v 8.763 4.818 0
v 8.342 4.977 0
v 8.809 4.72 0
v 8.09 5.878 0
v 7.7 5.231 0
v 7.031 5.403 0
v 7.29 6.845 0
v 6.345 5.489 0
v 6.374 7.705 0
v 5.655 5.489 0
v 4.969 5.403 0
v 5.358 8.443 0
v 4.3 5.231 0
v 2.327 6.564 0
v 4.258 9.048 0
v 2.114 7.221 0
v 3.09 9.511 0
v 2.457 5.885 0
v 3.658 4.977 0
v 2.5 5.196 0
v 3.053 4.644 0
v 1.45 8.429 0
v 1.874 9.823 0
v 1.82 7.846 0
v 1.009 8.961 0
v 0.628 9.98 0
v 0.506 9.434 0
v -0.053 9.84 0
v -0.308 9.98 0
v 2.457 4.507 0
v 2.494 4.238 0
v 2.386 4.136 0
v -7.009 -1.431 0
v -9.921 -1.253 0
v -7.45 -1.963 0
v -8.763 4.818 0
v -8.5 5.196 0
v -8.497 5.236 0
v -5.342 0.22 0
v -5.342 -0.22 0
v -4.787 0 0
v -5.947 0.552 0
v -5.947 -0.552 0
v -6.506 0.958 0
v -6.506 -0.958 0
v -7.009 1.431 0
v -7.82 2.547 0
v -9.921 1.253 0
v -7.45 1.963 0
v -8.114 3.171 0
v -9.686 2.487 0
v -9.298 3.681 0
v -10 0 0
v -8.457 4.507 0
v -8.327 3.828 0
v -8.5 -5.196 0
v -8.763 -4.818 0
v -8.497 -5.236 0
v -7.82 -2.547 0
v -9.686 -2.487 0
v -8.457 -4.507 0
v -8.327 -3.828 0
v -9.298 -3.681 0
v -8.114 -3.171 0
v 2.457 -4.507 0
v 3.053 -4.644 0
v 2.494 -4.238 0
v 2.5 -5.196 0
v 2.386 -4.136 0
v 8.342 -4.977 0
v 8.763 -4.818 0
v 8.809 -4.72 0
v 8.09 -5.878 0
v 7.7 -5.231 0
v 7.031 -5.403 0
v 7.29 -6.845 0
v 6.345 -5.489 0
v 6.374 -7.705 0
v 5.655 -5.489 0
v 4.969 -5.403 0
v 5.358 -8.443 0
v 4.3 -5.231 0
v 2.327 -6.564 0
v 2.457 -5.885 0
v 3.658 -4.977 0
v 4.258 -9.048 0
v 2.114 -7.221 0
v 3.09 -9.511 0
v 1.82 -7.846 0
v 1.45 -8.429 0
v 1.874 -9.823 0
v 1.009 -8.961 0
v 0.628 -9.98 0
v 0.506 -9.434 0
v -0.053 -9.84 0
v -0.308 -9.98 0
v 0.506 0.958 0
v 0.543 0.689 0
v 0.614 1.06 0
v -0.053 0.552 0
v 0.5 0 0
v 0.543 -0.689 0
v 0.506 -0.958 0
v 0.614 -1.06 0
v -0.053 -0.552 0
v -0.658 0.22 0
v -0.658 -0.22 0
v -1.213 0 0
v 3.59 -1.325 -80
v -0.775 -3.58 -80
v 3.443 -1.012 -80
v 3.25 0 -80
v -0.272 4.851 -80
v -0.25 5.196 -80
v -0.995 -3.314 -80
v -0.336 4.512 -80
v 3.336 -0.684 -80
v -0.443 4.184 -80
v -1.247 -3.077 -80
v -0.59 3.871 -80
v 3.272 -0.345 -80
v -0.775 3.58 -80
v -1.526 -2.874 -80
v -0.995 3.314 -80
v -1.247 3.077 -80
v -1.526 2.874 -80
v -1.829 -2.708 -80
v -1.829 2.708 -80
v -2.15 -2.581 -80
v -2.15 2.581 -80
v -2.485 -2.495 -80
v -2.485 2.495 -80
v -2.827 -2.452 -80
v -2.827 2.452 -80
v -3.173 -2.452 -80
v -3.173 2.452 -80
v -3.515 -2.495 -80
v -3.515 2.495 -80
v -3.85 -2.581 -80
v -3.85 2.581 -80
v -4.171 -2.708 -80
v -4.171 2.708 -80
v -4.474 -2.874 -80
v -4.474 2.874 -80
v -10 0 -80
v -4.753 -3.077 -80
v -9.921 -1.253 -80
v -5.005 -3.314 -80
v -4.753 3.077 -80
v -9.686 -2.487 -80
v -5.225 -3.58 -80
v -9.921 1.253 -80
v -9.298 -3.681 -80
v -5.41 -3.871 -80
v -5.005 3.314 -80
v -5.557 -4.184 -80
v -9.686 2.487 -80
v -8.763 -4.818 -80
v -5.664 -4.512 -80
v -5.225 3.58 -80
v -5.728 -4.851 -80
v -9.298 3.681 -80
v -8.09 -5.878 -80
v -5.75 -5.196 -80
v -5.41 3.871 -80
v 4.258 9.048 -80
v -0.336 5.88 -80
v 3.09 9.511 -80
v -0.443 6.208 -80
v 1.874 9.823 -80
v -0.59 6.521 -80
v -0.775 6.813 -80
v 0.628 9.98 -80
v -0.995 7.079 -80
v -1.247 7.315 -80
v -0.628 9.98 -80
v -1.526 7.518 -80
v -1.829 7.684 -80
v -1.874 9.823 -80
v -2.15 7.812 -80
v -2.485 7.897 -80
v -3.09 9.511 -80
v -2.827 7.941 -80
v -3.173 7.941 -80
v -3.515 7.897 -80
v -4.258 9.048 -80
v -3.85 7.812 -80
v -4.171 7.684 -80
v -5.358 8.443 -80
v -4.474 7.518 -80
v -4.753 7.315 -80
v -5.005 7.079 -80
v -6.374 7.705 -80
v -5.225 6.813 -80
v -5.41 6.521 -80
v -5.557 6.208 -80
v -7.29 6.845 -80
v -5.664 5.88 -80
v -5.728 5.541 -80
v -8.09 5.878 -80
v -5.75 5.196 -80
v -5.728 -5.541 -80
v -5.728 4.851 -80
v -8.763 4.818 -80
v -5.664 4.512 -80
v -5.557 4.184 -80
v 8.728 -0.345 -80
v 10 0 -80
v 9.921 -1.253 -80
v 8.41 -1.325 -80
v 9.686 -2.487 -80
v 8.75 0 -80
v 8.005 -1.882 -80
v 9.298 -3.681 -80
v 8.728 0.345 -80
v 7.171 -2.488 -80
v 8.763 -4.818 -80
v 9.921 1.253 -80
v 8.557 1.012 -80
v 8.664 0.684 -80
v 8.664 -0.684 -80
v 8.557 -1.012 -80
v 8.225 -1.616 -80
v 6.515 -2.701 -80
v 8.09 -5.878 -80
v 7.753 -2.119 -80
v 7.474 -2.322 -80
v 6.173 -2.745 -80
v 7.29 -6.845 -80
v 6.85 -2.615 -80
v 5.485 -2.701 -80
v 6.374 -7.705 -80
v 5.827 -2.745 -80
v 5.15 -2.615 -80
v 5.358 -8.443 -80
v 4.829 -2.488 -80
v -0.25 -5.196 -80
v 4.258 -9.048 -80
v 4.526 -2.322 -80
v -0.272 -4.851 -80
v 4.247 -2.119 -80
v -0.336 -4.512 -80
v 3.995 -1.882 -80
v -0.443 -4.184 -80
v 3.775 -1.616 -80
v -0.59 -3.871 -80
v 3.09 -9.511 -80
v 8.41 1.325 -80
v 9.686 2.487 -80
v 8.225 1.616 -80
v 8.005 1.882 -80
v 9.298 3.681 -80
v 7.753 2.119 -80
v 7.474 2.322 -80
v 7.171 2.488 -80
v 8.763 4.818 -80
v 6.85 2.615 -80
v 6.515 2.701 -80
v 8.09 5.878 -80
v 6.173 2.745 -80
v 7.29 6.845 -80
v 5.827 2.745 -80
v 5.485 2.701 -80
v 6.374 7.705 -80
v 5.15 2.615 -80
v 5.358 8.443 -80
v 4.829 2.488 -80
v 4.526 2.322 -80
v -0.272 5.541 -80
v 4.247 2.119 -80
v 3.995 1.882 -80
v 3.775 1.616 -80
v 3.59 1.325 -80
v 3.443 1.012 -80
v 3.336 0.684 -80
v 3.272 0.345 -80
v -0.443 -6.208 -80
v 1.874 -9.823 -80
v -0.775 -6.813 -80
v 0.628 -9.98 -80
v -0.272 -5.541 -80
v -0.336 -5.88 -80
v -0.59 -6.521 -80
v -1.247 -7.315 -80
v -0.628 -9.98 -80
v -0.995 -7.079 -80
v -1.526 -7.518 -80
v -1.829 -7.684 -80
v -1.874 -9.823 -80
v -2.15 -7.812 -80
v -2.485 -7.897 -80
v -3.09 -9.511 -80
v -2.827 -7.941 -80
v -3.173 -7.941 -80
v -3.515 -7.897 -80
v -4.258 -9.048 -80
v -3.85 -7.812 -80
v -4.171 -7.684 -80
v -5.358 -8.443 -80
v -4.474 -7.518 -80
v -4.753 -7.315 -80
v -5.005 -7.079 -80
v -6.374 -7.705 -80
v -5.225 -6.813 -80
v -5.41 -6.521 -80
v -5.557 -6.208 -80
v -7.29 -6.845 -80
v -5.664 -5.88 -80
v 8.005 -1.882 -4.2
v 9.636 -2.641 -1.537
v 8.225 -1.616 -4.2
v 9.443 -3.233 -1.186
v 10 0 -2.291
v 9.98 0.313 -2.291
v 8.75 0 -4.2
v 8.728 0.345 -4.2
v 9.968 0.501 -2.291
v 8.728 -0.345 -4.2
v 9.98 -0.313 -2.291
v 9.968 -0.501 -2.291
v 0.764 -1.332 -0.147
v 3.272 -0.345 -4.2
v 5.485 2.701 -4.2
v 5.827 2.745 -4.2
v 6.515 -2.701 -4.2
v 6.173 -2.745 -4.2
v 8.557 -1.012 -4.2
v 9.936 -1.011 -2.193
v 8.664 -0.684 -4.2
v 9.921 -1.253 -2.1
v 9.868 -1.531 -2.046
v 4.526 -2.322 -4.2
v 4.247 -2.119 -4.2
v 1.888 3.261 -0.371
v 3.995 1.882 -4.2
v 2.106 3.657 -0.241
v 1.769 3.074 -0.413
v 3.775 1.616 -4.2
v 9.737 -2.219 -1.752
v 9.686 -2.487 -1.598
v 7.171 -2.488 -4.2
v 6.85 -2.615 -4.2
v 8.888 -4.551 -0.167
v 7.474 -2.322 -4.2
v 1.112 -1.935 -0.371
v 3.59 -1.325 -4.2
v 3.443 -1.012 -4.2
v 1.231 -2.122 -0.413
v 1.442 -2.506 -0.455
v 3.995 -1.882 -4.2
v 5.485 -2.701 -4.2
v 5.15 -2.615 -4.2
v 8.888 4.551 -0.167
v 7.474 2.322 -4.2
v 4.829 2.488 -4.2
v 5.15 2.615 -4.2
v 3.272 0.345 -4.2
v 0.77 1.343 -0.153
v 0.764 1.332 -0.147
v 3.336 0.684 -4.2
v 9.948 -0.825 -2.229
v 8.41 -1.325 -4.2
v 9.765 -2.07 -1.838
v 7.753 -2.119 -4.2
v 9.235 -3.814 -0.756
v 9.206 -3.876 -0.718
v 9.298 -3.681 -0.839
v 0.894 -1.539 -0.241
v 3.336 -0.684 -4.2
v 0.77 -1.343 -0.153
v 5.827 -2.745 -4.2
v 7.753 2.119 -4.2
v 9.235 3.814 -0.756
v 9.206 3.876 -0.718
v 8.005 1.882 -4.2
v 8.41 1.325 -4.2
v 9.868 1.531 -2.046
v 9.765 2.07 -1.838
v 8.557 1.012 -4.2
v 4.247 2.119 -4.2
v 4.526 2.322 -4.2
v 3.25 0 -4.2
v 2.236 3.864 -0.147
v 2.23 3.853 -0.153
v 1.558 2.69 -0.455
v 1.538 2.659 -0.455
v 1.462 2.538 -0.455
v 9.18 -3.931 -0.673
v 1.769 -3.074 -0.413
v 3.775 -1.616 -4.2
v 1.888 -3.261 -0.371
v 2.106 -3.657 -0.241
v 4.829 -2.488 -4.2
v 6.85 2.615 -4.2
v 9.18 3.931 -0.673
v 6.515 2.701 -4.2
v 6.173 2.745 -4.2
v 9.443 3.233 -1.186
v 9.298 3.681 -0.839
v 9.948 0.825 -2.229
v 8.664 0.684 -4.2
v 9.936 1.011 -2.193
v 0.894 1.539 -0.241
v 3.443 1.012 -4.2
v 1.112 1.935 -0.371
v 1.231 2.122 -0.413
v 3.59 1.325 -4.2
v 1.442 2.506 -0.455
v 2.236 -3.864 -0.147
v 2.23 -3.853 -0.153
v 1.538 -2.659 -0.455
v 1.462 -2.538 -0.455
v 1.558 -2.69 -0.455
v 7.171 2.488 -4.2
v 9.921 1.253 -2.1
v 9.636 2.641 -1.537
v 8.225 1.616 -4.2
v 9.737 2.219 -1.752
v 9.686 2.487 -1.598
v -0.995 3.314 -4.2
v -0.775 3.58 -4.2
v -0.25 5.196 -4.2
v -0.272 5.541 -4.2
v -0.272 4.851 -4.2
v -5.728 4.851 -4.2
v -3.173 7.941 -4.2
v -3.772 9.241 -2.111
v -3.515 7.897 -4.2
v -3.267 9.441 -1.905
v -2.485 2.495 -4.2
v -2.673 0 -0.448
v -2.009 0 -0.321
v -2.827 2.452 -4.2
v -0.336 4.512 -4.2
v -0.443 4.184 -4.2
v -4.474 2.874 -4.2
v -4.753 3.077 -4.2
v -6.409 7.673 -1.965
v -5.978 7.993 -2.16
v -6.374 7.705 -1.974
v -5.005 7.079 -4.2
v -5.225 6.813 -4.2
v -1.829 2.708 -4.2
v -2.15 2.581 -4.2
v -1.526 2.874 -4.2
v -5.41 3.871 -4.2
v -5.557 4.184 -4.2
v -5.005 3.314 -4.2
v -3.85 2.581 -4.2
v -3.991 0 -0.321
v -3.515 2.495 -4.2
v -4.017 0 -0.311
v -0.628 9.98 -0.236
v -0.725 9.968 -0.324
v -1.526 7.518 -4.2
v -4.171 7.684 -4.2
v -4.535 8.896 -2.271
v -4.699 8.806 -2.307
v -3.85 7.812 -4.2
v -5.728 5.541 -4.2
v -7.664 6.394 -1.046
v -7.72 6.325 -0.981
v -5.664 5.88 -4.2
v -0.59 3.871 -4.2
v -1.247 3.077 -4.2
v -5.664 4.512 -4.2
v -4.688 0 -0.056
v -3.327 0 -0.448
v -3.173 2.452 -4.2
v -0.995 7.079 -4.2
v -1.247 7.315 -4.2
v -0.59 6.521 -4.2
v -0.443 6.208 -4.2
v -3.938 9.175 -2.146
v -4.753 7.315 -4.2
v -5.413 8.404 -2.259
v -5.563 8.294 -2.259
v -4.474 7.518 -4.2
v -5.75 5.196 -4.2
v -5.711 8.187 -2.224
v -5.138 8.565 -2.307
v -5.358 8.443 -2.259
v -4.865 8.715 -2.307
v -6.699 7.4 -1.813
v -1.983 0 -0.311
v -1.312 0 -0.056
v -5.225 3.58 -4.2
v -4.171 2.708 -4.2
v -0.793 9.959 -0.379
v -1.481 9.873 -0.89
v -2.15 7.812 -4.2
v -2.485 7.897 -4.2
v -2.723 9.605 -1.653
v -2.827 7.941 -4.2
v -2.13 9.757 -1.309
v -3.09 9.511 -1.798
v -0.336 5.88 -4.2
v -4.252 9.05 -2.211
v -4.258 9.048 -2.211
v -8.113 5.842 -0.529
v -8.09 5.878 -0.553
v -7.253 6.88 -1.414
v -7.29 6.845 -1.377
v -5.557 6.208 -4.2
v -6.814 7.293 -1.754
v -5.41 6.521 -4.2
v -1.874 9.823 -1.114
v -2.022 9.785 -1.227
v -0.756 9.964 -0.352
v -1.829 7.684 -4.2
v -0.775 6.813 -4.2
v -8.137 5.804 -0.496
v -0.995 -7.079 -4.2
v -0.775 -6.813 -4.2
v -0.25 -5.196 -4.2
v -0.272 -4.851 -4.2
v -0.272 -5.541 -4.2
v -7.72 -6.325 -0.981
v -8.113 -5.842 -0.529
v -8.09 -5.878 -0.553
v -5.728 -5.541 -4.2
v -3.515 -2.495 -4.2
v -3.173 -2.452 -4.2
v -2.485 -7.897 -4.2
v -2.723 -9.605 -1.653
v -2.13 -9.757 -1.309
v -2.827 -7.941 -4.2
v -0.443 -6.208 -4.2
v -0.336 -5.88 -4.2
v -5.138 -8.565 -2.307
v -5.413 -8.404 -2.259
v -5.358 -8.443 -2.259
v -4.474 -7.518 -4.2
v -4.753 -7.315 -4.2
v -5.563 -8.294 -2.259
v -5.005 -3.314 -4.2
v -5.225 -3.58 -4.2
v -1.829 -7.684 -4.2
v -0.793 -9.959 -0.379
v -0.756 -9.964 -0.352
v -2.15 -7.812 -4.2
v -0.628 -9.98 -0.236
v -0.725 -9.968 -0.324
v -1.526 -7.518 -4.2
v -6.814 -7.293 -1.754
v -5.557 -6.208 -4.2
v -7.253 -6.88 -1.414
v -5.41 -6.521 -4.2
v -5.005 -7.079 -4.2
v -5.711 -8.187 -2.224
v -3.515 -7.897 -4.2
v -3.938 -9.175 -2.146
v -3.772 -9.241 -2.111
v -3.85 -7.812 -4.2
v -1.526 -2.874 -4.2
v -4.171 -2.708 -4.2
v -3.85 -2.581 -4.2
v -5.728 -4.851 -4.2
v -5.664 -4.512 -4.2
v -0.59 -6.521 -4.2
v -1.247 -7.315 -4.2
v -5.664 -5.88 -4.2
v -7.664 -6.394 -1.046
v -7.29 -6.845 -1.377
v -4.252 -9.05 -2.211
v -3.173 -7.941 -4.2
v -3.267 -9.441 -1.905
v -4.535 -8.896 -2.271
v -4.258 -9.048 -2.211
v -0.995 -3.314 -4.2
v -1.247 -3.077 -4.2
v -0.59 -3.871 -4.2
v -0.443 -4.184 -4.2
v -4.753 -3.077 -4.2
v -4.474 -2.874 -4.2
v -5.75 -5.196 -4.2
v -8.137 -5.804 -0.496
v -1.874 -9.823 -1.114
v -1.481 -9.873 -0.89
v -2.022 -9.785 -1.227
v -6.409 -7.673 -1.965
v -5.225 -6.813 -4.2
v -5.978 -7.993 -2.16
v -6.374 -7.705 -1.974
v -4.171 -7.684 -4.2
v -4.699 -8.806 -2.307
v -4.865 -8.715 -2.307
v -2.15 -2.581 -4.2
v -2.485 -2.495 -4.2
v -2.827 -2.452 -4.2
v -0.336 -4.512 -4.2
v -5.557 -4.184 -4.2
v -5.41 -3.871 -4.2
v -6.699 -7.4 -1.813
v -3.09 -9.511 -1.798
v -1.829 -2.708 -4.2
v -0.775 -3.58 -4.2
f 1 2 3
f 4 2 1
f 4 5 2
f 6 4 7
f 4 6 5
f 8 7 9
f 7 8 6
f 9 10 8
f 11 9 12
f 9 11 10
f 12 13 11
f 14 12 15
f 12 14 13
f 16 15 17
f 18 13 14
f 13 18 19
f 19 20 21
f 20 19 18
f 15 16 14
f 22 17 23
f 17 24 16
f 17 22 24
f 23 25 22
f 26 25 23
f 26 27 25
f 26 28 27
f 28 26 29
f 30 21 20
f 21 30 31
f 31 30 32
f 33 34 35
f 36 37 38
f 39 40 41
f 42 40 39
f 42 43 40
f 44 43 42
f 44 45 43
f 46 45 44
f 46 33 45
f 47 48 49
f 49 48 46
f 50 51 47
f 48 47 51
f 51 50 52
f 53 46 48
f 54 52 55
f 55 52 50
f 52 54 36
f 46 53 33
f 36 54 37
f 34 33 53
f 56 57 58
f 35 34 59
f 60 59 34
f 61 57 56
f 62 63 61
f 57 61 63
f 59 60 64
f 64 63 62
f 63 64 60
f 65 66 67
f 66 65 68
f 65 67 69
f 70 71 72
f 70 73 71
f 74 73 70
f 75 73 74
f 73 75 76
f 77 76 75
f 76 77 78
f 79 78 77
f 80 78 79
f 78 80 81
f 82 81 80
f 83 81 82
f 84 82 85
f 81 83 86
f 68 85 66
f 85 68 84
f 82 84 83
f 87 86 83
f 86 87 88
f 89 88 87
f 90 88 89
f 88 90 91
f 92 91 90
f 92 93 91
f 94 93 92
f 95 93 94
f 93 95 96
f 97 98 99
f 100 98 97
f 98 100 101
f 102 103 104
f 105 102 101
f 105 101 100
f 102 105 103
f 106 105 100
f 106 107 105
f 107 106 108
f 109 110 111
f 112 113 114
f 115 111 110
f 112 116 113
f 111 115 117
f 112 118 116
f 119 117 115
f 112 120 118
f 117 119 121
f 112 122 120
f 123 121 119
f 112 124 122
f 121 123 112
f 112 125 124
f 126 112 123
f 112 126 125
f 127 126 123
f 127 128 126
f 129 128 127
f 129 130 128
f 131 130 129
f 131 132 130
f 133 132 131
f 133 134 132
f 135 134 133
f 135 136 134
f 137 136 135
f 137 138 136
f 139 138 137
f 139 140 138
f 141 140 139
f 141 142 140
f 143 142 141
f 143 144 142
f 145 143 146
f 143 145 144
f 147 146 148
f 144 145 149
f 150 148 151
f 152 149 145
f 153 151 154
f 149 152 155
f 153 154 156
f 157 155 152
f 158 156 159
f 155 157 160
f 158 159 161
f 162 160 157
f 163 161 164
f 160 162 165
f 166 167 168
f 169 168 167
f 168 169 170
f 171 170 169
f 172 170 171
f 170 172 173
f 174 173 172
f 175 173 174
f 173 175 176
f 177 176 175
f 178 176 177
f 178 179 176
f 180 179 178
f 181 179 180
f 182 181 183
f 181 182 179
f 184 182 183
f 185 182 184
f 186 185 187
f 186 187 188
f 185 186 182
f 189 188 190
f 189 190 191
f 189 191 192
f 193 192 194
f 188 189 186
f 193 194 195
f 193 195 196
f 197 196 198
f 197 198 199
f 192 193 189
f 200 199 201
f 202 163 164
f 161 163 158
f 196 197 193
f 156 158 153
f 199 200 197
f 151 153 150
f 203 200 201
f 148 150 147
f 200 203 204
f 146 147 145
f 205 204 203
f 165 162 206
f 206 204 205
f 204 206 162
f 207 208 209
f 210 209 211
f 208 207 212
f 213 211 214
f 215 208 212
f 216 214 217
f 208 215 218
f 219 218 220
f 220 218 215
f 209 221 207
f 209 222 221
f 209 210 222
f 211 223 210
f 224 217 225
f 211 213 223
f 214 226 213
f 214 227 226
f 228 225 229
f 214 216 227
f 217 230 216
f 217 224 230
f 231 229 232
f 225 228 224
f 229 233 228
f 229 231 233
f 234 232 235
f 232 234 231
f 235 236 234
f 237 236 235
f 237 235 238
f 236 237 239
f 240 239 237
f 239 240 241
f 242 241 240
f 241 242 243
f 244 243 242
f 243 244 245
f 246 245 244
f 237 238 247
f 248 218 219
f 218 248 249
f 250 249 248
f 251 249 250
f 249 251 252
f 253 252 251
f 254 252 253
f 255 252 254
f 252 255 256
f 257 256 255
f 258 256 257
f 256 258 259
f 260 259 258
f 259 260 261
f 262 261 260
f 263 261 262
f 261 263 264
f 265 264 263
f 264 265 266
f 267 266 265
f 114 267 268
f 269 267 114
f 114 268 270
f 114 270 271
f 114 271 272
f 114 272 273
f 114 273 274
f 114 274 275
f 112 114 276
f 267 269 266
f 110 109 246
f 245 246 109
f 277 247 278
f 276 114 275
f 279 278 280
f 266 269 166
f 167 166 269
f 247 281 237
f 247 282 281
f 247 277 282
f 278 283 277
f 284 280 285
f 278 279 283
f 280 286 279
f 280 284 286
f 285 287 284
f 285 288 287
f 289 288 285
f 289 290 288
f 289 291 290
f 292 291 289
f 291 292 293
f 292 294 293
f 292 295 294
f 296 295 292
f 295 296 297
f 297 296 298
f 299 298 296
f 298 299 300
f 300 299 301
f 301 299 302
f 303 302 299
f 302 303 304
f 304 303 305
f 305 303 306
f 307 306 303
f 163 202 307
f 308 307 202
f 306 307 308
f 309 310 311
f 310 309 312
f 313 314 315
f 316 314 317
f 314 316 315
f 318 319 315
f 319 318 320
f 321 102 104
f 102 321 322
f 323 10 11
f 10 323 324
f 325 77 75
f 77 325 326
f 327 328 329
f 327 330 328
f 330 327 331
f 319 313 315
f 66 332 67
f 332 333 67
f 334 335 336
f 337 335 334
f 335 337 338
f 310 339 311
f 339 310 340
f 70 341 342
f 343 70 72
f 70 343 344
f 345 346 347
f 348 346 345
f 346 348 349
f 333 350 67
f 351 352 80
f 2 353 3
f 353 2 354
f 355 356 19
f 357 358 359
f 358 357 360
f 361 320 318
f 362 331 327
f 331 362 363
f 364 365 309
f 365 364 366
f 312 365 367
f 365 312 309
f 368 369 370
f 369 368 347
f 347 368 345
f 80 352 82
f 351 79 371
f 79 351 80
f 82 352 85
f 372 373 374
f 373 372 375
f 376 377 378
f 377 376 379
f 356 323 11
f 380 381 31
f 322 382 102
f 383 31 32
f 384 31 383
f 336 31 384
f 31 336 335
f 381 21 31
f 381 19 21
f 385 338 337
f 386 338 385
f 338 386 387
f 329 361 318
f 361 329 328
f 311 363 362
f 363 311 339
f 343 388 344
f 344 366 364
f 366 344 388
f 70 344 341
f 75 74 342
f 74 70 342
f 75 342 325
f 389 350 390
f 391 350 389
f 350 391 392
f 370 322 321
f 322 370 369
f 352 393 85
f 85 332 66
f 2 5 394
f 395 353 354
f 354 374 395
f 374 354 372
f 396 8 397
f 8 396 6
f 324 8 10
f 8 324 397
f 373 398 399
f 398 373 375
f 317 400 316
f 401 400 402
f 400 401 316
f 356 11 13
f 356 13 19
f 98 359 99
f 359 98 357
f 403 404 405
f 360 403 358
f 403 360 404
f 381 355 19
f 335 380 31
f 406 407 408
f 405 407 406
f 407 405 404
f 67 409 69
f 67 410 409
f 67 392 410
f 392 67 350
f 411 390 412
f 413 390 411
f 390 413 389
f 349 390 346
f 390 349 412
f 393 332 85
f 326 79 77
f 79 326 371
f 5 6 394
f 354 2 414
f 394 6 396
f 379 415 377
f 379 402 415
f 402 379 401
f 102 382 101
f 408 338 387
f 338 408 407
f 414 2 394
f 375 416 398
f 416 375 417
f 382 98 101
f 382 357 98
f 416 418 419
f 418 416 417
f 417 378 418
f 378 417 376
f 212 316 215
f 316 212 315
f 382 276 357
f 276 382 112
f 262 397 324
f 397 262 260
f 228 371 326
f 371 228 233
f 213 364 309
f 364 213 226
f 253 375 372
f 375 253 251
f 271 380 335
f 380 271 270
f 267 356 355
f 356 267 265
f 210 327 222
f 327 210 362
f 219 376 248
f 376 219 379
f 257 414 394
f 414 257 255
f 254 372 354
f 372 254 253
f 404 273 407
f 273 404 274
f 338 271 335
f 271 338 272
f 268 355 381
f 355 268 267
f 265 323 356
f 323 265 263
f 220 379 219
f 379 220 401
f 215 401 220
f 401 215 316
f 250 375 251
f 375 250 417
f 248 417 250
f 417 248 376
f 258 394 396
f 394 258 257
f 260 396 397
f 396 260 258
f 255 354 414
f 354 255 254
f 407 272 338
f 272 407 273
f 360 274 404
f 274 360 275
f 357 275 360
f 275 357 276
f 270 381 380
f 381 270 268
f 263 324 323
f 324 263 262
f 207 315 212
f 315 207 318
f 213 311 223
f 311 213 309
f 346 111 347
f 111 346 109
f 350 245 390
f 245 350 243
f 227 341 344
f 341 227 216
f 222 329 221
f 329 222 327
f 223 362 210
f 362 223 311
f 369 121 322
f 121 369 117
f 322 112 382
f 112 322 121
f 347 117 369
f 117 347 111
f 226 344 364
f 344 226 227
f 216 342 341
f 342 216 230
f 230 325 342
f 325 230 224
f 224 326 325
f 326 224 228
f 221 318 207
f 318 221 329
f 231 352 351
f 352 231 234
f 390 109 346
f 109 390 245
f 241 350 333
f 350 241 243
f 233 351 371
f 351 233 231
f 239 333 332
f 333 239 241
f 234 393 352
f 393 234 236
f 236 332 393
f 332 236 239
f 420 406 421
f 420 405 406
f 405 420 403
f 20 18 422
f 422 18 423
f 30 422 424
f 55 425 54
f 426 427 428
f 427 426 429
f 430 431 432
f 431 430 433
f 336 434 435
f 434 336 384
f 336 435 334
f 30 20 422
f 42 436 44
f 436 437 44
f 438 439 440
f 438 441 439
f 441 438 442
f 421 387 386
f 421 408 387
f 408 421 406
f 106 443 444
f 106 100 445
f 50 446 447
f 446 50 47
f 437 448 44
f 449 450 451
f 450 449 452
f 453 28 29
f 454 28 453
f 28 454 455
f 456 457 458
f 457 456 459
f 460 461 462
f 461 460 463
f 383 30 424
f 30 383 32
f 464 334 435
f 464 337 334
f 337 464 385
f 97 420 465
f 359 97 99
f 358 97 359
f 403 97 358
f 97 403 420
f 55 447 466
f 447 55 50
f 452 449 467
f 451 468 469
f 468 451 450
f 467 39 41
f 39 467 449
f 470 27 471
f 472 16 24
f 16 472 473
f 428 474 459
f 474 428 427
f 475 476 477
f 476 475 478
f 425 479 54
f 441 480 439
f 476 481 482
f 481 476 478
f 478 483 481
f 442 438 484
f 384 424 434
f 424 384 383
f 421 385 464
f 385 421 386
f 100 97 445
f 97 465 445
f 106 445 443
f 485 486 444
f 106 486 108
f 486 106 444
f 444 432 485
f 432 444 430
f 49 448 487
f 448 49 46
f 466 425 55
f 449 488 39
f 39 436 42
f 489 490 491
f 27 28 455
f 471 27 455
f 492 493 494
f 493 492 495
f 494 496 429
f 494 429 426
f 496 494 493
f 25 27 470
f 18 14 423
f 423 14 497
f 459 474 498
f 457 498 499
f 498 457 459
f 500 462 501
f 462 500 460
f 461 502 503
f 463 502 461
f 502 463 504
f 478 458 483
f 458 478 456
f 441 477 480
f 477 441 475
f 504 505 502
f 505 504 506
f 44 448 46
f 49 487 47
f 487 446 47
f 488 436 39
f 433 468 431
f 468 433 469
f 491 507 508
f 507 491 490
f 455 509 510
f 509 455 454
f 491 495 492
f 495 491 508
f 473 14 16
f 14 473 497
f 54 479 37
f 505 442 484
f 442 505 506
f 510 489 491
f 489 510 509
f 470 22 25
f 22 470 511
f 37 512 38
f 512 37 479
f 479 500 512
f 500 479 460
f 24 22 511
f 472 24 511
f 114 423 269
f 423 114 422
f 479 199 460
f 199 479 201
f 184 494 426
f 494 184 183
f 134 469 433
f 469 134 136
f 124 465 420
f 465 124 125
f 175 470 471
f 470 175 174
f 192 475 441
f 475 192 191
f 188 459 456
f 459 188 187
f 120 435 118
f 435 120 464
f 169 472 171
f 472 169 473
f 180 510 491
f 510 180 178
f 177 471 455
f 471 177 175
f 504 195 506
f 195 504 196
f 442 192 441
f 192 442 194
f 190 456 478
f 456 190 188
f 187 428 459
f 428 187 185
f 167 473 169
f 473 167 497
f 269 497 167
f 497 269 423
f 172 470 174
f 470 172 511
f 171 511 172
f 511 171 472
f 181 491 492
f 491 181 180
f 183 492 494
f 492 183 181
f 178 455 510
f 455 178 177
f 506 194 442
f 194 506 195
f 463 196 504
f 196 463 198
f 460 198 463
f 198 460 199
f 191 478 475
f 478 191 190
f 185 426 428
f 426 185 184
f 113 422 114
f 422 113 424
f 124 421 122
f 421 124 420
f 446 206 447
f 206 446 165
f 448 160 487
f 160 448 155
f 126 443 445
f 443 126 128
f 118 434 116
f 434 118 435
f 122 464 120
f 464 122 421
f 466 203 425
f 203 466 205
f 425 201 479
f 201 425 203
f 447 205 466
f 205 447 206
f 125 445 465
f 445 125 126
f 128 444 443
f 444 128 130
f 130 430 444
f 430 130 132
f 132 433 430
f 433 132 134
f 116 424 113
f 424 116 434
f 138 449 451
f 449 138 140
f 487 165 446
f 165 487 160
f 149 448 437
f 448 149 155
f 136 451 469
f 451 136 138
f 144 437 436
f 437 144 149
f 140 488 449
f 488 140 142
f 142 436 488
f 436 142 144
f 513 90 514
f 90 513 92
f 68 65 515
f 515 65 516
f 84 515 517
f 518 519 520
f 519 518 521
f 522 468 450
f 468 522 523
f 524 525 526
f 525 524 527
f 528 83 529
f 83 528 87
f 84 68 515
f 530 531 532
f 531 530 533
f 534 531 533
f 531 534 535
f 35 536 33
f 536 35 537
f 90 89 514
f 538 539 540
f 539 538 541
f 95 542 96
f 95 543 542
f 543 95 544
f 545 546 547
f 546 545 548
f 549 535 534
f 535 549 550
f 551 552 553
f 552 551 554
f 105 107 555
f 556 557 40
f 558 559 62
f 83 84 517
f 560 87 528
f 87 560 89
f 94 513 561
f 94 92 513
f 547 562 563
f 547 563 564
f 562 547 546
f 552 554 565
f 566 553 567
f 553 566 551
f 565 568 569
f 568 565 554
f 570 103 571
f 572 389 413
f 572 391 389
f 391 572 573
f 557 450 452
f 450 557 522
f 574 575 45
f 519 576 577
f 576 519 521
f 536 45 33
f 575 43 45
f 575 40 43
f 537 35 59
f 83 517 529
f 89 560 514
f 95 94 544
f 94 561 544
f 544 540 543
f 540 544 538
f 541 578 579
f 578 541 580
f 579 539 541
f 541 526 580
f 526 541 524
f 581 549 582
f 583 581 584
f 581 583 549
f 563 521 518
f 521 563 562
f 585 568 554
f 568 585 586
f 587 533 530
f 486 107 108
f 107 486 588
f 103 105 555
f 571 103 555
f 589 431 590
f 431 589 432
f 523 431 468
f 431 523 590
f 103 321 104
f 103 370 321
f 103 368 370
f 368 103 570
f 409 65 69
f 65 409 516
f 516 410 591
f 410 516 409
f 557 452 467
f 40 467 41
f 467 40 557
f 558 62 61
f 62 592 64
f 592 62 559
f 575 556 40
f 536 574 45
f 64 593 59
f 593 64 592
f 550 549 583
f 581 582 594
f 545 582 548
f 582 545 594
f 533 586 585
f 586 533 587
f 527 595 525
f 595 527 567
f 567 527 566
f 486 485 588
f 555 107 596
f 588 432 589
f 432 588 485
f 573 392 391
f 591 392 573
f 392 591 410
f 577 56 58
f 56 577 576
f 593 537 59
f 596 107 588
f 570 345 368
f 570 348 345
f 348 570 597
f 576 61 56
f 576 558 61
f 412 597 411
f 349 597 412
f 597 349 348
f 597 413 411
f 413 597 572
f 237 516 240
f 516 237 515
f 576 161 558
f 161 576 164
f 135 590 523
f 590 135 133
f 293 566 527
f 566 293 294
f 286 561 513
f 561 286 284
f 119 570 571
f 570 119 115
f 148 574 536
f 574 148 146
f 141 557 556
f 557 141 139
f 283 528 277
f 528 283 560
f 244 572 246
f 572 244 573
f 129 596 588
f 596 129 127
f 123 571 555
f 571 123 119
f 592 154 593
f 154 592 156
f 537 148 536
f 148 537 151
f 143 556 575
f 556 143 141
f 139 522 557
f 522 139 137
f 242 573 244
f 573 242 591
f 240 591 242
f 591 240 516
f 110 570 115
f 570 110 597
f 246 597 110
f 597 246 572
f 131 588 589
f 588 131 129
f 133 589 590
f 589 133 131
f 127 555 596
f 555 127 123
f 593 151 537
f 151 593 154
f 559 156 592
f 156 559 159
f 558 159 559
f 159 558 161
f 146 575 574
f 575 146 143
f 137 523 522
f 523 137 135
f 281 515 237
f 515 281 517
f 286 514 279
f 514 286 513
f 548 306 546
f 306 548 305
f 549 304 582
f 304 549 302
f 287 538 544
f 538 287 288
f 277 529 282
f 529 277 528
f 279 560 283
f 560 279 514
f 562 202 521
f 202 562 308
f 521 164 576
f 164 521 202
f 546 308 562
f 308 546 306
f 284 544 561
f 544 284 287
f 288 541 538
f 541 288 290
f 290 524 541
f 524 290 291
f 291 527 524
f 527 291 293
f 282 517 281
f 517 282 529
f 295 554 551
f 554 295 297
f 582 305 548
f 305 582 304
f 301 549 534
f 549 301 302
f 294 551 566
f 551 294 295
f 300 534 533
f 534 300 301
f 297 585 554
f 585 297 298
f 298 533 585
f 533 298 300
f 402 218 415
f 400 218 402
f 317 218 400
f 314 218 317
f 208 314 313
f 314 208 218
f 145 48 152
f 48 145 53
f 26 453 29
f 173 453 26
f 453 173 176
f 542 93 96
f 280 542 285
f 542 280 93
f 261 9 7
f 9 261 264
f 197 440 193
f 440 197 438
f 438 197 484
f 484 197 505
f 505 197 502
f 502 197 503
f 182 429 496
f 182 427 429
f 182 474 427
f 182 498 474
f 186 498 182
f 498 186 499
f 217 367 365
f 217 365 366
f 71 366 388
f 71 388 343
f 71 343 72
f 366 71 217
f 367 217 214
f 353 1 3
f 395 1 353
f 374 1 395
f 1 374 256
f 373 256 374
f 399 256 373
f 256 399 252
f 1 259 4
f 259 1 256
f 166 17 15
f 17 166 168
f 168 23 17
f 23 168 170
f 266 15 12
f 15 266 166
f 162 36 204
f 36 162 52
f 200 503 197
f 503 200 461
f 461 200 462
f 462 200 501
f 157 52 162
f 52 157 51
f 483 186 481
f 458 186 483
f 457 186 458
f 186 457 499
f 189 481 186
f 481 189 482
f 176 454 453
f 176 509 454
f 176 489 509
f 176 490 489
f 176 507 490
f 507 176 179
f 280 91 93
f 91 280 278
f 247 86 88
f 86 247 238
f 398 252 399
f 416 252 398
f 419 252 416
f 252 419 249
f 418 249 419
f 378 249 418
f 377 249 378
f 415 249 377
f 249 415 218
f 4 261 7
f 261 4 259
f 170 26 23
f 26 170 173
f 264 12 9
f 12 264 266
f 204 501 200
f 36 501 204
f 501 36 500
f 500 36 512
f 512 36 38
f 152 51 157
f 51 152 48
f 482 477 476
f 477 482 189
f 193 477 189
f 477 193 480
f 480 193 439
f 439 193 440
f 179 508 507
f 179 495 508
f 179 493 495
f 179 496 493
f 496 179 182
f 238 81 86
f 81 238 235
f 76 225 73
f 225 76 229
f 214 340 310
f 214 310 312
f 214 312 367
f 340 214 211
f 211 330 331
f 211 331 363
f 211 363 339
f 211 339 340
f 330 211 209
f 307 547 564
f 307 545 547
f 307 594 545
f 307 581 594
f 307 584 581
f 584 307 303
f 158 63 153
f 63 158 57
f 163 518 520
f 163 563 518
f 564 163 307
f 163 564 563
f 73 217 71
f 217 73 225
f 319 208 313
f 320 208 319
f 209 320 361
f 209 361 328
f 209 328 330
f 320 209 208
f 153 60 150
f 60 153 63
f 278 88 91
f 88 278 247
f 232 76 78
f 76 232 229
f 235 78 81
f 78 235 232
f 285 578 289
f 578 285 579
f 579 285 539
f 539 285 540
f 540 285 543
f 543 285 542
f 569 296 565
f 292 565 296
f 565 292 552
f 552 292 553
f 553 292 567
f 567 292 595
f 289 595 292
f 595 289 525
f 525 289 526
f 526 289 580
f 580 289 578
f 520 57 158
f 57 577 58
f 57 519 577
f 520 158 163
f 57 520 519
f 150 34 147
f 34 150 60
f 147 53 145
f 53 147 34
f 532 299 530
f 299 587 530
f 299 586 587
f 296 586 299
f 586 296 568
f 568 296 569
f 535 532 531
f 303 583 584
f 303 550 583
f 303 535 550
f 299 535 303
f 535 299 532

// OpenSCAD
$fn = 50;


difference() {
	union() {
		translate(v = [0, 0, -80.0000000000]) {
			cylinder(h = 80, r = 10.0000000000);
		}
	}
	union() {
		translate(v = [6.0000000000, 0.0000000000, 0]) {
			rotate(a = [0, 0, 0]) {
				difference() {
					union() {
						#translate(v = [0, 0, -80.0000000000]) {
							cylinder(h = 80, r = 2.2500000000);
						}
						#translate(v = [0, 0, -4.2000000000]) {
							cylinder(h = 4.2000000000, r = 10.0000000000, r1 = 2.7500000000, r2 = 5.5000000000);
						}
						#translate(v = [0, 0, -80.0000000000]) {
							cylinder(h = 80, r = 2.7500000000);
						}
						#translate(v = [0, 0, -80.0000000000]) {
							cylinder(h = 80, r = 2.2500000000);
						}
					}
					union();
				}
			}
		}
		translate(v = [-3.0000000000, 5.1961524227, 0]) {
			rotate(a = [0, 0, 0]) {
				difference() {
					union() {
						#translate(v = [0, 0, -80.0000000000]) {
							cylinder(h = 80, r = 2.2500000000);
						}
						#translate(v = [0, 0, -4.2000000000]) {
							cylinder(h = 4.2000000000, r = 10.0000000000, r1 = 2.7500000000, r2 = 5.5000000000);
						}
						#translate(v = [0, 0, -80.0000000000]) {
							cylinder(h = 80, r = 2.7500000000);
						}
						#translate(v = [0, 0, -80.0000000000]) {
							cylinder(h = 80, r = 2.2500000000);
						}
					}
					union();
				}
			}
		}
		translate(v = [-3.0000000000, -5.1961524227, 0]) {
			rotate(a = [0, 0, 0]) {
				difference() {
					union() {
						#translate(v = [0, 0, -80.0000000000]) {
							cylinder(h = 80, r = 2.2500000000);
						}
						#translate(v = [0, 0, -4.2000000000]) {
							cylinder(h = 4.2000000000, r = 10.0000000000, r1 = 2.7500000000, r2 = 5.5000000000);
						}
						#translate(v = [0, 0, -80.0000000000]) {
							cylinder(h = 80, r = 2.7500000000);
						}
						#translate(v = [0, 0, -80.0000000000]) {
							cylinder(h = 80, r = 2.2500000000);
						}
					}
					union();
				}
			}
		}
	}
}
